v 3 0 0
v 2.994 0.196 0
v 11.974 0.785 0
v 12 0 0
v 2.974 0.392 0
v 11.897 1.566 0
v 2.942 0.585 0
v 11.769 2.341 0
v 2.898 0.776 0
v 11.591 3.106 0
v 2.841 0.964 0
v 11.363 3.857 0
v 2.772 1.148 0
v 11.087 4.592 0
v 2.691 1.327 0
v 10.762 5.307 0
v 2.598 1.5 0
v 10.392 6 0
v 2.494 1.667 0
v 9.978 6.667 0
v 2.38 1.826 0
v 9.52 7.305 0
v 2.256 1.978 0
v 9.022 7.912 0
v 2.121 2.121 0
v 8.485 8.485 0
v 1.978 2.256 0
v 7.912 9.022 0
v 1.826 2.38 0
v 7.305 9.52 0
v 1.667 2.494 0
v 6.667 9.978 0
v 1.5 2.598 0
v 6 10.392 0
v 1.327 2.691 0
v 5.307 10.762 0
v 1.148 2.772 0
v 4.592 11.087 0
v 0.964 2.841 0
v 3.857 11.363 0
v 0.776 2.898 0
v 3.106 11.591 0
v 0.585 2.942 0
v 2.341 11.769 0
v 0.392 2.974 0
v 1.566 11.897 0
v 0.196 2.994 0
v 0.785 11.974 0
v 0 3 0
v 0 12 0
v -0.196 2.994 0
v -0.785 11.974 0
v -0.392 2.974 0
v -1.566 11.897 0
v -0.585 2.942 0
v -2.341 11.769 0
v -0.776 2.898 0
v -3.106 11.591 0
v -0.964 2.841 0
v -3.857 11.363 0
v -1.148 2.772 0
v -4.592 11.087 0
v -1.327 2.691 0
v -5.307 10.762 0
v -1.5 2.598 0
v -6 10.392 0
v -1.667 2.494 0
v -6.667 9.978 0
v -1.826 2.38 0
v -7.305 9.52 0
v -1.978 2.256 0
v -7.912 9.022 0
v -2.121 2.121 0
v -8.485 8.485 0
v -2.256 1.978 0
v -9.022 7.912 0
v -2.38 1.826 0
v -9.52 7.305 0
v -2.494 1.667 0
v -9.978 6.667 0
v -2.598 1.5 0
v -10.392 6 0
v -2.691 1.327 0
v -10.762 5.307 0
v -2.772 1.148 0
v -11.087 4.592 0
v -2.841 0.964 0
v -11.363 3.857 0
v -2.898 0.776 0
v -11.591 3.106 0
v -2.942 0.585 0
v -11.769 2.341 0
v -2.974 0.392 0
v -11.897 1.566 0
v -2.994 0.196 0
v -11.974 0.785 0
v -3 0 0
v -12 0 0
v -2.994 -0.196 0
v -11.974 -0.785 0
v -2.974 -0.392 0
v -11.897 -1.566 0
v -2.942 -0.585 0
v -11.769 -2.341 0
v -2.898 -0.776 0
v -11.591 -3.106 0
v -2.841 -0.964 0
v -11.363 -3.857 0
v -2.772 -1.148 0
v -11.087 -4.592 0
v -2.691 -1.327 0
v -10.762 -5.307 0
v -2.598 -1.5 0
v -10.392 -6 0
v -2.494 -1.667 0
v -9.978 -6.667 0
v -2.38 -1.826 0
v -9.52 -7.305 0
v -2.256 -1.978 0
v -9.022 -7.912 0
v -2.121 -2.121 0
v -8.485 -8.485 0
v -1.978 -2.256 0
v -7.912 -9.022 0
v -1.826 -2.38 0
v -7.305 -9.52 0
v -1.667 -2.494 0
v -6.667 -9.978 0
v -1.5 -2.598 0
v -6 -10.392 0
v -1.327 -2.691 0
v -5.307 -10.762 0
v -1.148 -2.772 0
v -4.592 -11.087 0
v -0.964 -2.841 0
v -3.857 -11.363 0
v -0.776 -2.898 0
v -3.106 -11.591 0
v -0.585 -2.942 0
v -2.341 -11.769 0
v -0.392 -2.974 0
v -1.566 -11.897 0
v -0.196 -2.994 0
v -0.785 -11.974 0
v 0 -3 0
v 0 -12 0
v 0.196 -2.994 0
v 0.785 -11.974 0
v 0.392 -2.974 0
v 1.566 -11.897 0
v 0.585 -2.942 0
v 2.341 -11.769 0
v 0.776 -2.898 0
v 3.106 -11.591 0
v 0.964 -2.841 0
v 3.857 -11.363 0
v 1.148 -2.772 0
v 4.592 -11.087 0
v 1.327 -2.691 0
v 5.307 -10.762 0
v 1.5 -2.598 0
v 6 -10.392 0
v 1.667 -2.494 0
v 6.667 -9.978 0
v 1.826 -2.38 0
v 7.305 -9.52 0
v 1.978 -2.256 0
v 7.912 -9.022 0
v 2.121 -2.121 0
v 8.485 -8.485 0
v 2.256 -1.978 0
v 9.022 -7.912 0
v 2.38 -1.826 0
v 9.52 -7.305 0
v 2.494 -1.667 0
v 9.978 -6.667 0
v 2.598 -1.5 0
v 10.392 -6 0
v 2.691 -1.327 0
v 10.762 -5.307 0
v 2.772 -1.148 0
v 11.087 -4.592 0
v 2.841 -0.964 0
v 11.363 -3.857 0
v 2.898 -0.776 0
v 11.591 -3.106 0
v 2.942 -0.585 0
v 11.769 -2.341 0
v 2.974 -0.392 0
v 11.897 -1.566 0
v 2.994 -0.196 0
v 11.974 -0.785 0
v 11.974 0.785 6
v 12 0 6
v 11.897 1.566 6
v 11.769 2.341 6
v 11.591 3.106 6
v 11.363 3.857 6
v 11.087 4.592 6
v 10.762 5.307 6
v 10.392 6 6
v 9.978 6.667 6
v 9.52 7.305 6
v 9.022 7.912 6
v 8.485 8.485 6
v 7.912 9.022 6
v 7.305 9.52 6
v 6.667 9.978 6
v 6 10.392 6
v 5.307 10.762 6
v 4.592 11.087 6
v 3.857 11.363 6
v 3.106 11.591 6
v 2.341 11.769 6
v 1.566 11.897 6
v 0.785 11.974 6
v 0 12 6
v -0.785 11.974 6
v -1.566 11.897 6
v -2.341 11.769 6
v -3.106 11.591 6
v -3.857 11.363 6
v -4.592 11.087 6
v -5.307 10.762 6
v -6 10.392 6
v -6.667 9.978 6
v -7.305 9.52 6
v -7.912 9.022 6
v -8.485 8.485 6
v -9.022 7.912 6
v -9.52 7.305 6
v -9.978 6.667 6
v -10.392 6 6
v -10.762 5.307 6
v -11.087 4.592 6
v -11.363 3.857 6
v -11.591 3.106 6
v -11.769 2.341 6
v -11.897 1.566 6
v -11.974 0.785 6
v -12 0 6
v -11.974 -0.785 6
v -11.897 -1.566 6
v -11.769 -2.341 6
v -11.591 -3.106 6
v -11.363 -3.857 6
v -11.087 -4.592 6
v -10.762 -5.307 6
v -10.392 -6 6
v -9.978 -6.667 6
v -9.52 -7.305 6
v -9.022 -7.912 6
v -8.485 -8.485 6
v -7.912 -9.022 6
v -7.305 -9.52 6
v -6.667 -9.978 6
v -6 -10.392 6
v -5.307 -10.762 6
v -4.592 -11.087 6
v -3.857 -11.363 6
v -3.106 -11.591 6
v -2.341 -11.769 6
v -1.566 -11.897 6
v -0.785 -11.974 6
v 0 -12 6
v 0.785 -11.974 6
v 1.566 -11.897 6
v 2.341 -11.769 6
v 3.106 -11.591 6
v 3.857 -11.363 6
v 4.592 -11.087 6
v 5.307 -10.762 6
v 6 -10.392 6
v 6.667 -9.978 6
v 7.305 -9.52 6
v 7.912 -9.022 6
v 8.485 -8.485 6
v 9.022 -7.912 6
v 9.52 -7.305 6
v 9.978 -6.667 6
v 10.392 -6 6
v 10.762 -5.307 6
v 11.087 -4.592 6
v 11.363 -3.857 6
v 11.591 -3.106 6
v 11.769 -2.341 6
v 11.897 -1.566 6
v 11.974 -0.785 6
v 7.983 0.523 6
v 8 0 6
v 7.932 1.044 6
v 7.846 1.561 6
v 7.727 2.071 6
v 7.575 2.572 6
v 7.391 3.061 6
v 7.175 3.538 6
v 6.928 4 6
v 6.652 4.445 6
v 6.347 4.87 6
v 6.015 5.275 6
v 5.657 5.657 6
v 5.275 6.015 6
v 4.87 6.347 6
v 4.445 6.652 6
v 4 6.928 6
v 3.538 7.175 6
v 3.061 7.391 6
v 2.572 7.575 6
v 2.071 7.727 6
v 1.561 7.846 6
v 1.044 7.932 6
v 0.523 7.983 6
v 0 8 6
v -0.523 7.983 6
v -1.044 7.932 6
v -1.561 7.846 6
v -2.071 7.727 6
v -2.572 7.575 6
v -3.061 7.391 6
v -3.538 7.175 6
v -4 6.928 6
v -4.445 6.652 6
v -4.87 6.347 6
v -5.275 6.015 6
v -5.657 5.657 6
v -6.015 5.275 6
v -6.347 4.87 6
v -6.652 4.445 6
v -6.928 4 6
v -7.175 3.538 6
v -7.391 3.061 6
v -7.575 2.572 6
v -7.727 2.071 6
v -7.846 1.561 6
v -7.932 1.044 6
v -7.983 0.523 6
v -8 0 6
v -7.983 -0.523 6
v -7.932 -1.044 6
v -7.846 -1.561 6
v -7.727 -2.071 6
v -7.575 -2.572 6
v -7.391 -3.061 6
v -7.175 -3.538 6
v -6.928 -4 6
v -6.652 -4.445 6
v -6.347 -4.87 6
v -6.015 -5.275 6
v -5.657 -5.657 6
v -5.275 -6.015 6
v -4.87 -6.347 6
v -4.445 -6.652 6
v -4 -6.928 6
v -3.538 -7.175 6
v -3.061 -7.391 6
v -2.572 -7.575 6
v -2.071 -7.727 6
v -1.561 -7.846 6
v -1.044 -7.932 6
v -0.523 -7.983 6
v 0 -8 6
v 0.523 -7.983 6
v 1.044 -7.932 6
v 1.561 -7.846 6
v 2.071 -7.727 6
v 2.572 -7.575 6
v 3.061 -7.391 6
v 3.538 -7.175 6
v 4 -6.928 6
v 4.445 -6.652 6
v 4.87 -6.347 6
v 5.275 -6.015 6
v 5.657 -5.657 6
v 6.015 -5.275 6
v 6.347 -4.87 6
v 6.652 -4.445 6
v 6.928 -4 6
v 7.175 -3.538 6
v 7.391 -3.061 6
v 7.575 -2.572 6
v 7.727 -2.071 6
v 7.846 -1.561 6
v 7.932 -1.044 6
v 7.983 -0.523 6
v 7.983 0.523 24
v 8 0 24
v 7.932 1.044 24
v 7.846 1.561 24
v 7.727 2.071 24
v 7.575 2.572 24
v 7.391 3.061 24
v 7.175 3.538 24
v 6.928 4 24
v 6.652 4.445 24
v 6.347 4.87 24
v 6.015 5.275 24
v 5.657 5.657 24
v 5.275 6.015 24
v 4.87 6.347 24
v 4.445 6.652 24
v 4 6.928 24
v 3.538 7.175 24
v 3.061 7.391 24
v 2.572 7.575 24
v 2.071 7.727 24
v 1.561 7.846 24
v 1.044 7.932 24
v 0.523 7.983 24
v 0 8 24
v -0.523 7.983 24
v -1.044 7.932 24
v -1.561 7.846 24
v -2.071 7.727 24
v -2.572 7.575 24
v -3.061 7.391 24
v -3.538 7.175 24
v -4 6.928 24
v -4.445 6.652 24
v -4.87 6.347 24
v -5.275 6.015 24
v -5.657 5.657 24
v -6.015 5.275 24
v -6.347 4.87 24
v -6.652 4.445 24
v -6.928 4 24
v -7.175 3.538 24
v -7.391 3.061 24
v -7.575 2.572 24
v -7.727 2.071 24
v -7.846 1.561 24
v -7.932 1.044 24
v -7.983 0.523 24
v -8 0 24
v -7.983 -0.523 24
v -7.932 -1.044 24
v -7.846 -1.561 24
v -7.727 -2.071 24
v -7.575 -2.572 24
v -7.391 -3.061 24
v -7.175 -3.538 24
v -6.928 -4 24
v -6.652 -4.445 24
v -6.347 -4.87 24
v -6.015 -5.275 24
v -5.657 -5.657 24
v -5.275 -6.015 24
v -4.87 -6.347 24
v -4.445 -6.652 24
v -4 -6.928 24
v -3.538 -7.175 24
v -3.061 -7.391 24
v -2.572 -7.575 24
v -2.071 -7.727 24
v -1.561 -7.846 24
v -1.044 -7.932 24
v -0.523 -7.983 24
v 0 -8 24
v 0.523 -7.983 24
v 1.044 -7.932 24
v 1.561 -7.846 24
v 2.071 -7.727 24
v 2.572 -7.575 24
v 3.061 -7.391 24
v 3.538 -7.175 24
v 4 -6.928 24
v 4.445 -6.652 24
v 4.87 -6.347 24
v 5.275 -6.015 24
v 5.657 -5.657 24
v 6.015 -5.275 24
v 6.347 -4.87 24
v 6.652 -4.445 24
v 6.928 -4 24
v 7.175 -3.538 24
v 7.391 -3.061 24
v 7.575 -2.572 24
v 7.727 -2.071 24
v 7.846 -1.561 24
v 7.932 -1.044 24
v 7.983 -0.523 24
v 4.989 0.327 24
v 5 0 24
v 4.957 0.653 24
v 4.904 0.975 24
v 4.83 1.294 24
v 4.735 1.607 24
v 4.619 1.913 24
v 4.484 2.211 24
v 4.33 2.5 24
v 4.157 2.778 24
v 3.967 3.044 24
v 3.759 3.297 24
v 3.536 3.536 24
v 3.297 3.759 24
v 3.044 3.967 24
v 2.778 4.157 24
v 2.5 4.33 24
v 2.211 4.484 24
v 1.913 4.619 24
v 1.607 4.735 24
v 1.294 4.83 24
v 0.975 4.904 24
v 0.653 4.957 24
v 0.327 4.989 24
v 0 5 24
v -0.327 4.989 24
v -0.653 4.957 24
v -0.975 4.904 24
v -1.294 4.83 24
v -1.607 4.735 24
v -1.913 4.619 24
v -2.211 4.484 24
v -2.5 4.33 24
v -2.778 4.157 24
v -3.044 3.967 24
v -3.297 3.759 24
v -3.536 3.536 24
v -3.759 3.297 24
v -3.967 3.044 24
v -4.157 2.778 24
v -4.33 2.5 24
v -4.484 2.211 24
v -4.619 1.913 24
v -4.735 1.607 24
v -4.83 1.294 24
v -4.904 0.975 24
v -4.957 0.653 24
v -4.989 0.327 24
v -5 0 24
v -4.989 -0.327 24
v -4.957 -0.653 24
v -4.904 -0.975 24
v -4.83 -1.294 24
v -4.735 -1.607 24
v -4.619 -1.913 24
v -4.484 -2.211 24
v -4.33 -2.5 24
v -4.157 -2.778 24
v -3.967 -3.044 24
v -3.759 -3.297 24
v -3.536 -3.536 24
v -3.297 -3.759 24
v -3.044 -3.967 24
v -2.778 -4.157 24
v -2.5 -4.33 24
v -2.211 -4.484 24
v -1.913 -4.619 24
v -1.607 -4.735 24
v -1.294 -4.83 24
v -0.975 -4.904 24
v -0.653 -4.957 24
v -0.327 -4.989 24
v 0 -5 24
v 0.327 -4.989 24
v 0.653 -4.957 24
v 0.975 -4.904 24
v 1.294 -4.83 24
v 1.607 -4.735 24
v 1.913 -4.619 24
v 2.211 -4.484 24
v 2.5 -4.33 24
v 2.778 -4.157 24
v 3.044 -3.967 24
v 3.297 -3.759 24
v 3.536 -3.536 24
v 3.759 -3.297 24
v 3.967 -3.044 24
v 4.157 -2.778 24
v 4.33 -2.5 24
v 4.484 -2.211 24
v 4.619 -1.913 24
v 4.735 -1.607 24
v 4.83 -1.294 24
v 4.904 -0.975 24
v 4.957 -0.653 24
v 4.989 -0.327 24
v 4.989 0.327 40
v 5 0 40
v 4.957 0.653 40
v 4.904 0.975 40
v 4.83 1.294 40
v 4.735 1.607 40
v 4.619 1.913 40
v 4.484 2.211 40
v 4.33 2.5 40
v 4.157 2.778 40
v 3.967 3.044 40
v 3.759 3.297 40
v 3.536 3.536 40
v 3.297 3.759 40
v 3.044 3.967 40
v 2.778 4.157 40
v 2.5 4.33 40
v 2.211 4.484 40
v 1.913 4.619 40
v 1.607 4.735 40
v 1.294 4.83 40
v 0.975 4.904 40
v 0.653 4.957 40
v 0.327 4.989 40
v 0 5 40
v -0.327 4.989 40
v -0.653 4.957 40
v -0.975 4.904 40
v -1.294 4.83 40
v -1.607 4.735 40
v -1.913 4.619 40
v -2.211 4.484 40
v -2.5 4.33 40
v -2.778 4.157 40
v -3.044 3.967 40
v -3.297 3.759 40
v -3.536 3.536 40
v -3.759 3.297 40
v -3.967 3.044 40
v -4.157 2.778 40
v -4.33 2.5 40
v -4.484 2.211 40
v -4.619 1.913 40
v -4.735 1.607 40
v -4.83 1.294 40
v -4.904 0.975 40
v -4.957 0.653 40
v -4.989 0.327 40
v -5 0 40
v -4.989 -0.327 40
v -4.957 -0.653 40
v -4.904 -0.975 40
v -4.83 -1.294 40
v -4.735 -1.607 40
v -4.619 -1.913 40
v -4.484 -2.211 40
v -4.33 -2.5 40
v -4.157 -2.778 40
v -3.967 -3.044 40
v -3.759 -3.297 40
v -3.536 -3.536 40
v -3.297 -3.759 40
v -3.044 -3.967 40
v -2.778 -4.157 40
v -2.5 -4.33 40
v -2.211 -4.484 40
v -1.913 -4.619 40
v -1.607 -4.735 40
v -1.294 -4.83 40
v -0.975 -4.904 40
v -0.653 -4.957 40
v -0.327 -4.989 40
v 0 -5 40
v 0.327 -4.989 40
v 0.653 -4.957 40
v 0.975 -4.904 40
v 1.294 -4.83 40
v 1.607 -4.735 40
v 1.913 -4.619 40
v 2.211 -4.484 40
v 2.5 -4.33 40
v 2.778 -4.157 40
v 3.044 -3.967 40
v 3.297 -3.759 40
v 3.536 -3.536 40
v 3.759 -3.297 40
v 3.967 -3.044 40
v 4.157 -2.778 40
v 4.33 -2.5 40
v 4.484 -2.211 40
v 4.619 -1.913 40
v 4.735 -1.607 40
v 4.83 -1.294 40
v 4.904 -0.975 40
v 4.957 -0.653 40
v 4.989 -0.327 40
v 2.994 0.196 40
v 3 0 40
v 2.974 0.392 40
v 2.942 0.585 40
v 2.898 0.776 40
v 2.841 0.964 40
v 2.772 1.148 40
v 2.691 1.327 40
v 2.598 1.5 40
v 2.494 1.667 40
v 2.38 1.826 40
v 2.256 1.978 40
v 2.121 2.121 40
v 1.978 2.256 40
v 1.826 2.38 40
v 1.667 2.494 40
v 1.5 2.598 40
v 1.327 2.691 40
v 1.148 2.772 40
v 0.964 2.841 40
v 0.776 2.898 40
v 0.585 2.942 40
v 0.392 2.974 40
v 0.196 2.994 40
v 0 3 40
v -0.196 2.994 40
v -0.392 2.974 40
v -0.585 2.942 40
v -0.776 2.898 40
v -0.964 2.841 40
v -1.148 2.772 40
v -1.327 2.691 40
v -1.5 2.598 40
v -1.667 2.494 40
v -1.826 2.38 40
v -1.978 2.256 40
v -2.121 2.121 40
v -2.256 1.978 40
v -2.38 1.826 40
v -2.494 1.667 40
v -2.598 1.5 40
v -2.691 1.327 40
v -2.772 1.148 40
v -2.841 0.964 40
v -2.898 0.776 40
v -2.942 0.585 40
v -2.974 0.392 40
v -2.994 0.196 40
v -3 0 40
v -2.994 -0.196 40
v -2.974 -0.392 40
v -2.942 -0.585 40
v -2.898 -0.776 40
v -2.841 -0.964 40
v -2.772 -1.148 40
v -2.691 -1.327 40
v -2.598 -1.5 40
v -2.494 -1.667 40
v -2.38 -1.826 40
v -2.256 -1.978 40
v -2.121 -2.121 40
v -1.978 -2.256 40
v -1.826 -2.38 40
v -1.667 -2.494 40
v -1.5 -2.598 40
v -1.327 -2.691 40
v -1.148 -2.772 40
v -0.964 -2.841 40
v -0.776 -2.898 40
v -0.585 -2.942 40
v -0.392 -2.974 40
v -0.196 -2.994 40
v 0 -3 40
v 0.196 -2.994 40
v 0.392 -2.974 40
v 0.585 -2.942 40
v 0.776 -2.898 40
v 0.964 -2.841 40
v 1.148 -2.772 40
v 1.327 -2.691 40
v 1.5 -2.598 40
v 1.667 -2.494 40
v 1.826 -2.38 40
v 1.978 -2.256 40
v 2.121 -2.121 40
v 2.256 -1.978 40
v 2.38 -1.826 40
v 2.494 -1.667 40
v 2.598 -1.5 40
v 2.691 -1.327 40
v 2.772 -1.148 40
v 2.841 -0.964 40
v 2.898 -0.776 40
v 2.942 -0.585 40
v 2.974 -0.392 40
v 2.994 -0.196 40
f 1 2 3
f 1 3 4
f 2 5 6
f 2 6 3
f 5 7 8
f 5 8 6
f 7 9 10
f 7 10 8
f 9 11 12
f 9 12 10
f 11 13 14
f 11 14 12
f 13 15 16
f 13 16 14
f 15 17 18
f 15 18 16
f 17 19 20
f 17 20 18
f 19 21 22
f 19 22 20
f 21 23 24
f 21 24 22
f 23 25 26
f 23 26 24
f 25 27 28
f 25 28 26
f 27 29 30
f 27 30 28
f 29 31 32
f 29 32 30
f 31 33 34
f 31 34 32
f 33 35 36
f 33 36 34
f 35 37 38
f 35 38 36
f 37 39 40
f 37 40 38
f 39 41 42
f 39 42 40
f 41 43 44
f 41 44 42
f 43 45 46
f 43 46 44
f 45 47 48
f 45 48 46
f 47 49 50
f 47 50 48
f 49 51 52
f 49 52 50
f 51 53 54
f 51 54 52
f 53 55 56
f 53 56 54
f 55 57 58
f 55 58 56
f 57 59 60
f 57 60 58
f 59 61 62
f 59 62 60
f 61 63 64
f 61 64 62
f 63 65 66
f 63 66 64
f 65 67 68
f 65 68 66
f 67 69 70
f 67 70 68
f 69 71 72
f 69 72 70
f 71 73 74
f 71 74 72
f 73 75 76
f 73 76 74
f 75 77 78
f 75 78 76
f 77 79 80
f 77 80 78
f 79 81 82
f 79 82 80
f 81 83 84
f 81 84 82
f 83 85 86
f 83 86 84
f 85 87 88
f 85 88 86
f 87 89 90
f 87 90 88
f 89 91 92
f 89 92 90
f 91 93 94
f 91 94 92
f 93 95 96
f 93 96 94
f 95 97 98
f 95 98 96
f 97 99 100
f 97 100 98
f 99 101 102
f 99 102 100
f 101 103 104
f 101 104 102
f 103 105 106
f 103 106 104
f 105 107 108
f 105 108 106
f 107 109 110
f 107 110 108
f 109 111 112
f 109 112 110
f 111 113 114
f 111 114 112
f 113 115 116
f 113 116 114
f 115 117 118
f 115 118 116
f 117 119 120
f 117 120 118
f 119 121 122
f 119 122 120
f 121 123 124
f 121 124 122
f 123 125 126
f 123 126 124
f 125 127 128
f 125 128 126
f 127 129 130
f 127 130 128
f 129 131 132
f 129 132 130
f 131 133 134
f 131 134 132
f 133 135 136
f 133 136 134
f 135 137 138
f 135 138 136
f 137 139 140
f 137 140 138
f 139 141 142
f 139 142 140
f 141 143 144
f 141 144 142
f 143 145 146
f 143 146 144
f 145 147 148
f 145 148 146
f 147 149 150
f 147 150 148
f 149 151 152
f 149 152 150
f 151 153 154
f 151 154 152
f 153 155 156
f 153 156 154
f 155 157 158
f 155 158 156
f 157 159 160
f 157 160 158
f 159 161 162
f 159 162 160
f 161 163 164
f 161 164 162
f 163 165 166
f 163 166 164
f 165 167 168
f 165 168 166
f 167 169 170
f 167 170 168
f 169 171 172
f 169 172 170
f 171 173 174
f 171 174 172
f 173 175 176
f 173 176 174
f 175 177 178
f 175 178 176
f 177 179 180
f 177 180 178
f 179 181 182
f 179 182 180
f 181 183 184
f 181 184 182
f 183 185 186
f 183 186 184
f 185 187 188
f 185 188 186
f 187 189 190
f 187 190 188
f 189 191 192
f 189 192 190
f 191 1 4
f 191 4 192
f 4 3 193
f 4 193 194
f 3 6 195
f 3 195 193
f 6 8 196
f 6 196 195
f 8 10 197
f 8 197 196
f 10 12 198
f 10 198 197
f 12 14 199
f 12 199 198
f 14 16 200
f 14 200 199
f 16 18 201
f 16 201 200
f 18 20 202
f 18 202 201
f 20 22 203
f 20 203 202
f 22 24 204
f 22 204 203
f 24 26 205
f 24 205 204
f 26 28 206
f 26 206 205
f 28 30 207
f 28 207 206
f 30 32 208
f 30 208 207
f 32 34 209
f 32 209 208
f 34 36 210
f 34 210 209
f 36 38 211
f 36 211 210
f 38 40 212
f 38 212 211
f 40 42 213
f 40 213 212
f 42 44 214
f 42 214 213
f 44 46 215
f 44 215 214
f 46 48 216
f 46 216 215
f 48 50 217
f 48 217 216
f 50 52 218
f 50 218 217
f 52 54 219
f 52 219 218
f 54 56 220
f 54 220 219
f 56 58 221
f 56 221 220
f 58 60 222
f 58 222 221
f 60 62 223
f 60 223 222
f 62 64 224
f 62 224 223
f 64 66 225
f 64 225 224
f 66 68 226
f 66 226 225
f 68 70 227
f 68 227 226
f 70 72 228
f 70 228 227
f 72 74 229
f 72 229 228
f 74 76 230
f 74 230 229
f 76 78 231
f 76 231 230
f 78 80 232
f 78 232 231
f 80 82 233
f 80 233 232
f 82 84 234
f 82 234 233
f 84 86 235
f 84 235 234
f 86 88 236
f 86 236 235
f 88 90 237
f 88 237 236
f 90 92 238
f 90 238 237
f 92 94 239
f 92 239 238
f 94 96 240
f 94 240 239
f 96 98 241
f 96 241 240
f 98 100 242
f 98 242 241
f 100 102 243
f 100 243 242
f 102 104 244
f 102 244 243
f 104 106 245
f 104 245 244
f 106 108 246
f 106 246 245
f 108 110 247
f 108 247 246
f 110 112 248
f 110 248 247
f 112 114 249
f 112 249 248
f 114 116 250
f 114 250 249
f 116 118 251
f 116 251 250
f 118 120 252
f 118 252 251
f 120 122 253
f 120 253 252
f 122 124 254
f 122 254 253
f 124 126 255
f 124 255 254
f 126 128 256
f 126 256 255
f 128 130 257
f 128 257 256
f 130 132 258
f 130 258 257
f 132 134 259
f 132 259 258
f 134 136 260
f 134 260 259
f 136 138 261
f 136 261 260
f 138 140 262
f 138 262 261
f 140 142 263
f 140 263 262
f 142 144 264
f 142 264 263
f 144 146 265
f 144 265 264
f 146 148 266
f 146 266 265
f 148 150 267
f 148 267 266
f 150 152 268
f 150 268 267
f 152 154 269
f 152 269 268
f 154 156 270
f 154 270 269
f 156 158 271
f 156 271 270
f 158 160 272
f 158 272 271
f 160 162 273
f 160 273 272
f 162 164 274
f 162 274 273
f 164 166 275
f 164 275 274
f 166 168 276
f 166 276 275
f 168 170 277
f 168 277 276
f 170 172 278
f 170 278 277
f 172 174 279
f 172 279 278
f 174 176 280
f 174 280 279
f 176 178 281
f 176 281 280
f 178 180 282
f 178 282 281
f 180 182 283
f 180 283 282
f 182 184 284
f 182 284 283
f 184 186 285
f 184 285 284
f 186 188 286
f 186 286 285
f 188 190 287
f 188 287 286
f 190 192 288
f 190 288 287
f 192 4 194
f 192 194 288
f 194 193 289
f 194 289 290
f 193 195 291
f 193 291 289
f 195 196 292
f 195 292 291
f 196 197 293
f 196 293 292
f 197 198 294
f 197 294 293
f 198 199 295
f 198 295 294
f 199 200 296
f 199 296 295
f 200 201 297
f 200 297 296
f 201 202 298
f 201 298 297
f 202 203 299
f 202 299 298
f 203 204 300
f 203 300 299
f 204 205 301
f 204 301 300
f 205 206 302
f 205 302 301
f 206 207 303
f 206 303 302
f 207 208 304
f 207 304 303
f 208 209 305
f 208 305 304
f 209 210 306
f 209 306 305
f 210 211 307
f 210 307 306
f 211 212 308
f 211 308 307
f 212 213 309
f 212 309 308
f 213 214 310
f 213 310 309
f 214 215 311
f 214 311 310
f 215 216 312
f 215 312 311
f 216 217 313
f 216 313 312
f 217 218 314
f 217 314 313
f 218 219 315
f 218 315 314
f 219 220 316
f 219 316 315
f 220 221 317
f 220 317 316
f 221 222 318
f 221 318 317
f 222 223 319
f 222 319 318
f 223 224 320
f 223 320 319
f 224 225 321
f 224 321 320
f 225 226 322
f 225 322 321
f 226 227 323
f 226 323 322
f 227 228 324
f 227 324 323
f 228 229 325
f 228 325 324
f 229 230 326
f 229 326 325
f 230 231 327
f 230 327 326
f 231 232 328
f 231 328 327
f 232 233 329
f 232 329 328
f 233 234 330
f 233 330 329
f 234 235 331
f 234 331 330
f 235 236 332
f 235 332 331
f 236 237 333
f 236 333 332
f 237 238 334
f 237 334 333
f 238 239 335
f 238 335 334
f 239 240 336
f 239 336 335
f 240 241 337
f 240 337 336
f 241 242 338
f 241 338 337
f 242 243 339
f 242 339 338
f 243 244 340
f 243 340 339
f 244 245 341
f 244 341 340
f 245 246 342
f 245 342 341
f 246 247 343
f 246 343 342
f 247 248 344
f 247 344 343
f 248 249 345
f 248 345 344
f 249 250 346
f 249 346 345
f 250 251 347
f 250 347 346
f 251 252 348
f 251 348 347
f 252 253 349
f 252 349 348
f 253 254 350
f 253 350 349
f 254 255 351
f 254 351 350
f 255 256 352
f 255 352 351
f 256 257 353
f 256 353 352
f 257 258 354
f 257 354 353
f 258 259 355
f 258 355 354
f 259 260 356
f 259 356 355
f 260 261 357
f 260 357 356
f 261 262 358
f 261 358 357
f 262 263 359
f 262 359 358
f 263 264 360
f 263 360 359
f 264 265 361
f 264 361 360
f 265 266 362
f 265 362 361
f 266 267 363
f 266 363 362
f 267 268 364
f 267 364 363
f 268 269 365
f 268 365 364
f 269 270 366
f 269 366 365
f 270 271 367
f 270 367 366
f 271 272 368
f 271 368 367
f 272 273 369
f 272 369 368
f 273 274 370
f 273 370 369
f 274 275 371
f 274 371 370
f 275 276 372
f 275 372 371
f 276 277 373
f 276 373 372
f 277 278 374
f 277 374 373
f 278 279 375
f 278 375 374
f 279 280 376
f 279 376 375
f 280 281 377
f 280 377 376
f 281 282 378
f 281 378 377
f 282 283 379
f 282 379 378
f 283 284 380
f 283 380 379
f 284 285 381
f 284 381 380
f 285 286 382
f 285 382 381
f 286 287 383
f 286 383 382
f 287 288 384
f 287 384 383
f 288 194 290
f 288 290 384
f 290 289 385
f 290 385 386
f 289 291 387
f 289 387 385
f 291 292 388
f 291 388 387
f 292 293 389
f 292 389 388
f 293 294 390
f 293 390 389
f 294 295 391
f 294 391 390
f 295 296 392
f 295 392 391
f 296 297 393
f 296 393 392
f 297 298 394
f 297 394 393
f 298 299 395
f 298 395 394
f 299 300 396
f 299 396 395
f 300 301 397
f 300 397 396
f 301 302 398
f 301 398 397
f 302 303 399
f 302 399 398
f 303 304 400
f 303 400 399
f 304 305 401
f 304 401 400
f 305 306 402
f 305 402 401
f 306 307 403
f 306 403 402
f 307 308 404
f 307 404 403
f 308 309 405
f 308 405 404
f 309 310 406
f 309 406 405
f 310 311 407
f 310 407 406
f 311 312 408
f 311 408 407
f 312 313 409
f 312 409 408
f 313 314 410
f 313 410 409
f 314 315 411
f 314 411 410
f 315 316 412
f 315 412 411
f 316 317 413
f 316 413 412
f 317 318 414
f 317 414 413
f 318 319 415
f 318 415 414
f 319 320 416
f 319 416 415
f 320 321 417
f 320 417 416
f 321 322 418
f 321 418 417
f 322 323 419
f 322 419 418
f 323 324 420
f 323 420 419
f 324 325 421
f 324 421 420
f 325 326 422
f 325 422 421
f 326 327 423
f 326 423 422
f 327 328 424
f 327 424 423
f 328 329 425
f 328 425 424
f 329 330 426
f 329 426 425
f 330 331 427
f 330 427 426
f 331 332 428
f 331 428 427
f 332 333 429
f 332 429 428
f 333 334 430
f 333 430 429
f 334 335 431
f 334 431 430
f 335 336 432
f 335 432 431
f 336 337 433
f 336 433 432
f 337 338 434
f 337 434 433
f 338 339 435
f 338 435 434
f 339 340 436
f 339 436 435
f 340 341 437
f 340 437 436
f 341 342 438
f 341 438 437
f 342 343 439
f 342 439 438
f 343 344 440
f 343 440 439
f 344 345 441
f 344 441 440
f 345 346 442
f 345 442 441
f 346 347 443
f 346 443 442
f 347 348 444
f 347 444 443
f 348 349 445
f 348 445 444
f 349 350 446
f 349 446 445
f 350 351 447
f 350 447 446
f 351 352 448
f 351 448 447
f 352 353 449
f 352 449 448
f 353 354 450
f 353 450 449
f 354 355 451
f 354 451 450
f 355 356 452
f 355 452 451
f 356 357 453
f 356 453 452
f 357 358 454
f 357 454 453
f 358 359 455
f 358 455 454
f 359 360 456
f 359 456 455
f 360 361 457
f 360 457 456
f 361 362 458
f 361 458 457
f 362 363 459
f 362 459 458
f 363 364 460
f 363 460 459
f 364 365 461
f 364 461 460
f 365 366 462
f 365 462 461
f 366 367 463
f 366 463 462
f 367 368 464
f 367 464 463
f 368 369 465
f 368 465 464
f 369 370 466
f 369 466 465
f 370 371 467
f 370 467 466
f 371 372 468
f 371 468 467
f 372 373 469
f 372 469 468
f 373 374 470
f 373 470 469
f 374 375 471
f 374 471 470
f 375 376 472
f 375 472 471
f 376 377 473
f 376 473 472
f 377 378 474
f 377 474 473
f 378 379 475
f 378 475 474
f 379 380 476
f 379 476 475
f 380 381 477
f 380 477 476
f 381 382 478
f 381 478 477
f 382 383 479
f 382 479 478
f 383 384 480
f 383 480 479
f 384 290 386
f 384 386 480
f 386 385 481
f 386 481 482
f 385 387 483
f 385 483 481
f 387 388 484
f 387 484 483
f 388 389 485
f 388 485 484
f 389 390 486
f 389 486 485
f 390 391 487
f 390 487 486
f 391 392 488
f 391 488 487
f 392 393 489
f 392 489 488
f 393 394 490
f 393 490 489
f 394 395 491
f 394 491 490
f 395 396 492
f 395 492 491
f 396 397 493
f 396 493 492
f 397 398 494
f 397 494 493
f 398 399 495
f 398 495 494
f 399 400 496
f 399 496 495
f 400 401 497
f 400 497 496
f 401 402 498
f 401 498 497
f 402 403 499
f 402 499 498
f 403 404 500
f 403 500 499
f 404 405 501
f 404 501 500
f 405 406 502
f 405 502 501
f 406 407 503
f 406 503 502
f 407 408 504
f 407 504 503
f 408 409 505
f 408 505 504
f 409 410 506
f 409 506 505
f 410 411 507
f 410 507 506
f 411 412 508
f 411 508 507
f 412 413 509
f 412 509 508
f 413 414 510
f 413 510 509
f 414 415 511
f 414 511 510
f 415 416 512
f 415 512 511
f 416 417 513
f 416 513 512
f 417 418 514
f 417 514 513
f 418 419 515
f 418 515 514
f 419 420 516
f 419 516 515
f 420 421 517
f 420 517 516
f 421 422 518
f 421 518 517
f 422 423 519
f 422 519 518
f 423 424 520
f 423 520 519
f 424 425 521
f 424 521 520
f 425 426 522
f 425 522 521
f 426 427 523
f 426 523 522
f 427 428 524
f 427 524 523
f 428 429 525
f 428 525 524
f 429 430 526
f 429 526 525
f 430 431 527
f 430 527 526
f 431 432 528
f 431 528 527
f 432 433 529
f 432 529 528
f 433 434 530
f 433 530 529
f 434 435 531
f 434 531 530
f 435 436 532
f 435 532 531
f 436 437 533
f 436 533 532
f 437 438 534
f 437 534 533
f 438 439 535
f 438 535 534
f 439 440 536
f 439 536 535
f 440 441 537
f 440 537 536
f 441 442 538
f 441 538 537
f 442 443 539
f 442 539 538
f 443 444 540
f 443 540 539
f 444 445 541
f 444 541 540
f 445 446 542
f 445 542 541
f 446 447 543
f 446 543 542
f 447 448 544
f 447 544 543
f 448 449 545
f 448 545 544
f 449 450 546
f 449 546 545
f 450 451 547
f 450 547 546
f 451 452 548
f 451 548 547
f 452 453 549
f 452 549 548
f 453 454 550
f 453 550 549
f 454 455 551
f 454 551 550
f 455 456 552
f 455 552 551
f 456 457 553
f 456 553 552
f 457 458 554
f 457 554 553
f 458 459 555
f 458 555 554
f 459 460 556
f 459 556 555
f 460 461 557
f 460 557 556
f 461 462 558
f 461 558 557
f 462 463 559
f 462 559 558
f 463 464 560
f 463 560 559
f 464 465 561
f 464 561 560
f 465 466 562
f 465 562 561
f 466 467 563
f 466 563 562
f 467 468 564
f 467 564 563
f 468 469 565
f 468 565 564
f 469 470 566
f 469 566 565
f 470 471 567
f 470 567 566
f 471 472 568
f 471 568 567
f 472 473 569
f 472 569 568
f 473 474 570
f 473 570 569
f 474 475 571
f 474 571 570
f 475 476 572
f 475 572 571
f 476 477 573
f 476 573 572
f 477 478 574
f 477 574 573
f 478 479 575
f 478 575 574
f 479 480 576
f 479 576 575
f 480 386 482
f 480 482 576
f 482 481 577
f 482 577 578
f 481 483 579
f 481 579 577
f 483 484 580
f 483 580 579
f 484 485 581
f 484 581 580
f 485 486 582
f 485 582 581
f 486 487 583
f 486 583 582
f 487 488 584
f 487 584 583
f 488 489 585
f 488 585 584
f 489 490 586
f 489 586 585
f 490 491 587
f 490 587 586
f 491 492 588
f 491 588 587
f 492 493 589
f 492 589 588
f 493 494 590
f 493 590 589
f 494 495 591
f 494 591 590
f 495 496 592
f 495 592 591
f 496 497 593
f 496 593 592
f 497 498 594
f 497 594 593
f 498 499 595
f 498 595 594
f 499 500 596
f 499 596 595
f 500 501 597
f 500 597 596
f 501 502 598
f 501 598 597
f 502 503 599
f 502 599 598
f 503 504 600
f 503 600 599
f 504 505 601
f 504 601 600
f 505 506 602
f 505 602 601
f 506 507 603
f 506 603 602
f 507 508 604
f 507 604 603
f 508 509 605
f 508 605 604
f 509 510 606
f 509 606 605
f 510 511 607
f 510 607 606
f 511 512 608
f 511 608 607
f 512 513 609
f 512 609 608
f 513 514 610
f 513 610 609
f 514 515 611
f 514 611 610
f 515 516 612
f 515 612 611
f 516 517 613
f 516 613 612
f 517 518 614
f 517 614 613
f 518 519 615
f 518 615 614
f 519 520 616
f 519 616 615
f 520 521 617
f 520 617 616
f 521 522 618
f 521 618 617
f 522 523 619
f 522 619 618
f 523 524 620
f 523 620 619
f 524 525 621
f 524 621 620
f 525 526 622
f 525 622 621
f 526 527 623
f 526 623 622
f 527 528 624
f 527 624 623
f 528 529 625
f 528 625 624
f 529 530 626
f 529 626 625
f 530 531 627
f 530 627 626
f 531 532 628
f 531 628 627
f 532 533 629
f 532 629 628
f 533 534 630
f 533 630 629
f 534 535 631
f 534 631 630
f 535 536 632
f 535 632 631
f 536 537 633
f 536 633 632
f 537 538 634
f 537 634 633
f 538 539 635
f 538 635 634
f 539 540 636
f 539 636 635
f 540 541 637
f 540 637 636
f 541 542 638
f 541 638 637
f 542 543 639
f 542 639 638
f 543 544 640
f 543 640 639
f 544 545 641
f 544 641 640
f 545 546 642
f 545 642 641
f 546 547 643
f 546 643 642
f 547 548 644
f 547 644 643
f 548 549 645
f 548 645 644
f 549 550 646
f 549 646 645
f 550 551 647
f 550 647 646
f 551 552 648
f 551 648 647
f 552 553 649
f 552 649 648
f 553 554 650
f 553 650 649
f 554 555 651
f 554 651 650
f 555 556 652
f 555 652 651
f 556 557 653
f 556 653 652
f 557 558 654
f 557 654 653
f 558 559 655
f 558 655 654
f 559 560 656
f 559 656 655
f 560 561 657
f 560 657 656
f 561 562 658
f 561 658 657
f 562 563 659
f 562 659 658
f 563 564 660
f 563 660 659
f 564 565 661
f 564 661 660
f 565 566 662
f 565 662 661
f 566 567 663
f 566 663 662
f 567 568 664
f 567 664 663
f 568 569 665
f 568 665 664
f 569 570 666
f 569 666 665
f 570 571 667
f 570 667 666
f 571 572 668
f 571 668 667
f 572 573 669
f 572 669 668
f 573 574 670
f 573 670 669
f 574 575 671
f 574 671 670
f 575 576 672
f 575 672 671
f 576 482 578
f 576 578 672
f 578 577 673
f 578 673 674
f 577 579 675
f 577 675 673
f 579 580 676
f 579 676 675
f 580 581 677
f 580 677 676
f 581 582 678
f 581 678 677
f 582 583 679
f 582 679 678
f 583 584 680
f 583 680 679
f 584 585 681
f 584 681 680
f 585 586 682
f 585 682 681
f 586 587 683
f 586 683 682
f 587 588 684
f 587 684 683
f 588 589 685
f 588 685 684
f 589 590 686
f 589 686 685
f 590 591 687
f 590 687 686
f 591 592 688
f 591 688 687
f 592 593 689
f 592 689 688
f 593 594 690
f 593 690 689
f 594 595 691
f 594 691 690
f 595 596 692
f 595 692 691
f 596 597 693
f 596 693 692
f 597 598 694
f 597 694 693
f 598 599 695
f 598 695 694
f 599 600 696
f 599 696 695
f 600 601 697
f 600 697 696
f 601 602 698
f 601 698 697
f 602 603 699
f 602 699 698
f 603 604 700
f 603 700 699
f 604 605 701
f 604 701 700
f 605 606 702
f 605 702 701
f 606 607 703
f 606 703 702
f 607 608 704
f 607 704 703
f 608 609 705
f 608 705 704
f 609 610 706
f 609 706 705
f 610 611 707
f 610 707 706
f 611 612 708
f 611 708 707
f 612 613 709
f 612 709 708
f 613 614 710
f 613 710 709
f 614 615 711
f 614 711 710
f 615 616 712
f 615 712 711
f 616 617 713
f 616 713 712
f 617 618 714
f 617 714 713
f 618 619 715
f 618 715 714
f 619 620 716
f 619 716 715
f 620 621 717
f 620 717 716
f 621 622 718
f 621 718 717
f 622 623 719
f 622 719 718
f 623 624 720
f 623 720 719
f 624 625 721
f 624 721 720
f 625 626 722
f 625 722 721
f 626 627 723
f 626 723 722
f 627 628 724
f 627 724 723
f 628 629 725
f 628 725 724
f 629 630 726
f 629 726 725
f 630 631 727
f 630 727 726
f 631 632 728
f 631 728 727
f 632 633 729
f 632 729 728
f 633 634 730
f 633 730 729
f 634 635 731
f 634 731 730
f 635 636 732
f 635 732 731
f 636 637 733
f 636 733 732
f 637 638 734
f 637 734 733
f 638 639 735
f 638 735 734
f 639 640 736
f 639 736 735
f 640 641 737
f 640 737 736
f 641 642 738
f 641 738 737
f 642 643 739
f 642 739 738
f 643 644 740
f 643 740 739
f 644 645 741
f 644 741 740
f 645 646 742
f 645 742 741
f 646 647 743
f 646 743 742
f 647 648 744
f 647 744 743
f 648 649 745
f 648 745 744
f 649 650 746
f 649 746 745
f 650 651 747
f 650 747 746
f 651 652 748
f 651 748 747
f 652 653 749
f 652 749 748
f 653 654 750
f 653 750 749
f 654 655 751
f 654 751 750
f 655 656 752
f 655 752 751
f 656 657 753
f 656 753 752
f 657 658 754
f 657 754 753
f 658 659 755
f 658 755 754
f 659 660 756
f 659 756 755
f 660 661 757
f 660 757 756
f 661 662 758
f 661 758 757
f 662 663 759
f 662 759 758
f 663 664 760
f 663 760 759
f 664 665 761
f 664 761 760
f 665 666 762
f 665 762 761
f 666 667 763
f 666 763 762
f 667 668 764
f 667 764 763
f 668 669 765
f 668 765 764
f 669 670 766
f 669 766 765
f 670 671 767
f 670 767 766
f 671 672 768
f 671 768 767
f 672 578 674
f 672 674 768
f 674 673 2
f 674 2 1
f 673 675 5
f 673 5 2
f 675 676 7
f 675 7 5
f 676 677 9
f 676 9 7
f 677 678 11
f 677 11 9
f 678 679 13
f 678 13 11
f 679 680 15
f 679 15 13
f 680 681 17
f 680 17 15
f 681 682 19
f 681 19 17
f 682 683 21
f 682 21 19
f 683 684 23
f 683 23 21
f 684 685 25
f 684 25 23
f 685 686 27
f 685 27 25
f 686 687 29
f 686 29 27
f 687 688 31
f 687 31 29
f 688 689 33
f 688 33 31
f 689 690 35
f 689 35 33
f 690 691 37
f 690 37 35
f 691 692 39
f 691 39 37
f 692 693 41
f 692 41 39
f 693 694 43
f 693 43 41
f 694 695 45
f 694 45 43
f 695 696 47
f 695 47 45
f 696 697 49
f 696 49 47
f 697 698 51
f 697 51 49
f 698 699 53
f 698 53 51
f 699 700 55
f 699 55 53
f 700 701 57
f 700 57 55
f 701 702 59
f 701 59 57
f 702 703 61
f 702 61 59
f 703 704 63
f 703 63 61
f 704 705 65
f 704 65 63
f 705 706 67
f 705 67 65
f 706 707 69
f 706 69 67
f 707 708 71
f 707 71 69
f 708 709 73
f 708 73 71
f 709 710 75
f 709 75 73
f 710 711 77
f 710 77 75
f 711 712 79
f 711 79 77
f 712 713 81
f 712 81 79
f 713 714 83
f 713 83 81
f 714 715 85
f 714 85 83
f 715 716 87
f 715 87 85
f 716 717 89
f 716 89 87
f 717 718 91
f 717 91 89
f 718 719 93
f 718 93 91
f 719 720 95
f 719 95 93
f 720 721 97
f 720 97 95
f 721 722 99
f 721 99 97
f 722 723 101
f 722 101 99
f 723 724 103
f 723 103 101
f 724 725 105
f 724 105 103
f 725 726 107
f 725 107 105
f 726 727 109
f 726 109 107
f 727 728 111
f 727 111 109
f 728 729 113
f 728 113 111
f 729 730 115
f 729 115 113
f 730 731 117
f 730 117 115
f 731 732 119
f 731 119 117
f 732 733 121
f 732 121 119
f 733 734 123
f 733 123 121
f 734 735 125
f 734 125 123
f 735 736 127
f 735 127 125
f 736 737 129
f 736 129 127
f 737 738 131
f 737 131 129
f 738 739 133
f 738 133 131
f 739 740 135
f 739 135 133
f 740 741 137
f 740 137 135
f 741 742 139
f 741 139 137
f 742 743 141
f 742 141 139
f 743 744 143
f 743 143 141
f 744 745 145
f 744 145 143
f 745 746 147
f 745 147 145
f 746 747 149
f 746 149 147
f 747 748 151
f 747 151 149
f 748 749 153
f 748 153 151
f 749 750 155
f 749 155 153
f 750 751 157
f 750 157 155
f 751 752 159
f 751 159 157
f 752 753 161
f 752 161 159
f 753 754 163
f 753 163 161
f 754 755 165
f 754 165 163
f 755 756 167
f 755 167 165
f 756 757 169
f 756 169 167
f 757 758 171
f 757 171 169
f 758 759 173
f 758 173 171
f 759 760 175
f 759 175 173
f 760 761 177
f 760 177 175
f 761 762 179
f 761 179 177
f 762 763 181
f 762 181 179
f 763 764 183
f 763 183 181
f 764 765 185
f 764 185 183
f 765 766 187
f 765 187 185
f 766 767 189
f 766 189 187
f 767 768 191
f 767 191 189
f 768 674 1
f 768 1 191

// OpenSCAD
// Original MechIntel educational model. CC0-1.0. Units: mm.
// Not a standardized or load-rated component.
$fn=96;
// Section points: [radius, height], mm. Edit to change the profile.
section=[[3, 0], [12, 0], [12, 6], [8, 6], [8, 24], [5, 24], [5, 40], [3, 40]];
rotate_extrude($fn=96) polygon(points=section);
